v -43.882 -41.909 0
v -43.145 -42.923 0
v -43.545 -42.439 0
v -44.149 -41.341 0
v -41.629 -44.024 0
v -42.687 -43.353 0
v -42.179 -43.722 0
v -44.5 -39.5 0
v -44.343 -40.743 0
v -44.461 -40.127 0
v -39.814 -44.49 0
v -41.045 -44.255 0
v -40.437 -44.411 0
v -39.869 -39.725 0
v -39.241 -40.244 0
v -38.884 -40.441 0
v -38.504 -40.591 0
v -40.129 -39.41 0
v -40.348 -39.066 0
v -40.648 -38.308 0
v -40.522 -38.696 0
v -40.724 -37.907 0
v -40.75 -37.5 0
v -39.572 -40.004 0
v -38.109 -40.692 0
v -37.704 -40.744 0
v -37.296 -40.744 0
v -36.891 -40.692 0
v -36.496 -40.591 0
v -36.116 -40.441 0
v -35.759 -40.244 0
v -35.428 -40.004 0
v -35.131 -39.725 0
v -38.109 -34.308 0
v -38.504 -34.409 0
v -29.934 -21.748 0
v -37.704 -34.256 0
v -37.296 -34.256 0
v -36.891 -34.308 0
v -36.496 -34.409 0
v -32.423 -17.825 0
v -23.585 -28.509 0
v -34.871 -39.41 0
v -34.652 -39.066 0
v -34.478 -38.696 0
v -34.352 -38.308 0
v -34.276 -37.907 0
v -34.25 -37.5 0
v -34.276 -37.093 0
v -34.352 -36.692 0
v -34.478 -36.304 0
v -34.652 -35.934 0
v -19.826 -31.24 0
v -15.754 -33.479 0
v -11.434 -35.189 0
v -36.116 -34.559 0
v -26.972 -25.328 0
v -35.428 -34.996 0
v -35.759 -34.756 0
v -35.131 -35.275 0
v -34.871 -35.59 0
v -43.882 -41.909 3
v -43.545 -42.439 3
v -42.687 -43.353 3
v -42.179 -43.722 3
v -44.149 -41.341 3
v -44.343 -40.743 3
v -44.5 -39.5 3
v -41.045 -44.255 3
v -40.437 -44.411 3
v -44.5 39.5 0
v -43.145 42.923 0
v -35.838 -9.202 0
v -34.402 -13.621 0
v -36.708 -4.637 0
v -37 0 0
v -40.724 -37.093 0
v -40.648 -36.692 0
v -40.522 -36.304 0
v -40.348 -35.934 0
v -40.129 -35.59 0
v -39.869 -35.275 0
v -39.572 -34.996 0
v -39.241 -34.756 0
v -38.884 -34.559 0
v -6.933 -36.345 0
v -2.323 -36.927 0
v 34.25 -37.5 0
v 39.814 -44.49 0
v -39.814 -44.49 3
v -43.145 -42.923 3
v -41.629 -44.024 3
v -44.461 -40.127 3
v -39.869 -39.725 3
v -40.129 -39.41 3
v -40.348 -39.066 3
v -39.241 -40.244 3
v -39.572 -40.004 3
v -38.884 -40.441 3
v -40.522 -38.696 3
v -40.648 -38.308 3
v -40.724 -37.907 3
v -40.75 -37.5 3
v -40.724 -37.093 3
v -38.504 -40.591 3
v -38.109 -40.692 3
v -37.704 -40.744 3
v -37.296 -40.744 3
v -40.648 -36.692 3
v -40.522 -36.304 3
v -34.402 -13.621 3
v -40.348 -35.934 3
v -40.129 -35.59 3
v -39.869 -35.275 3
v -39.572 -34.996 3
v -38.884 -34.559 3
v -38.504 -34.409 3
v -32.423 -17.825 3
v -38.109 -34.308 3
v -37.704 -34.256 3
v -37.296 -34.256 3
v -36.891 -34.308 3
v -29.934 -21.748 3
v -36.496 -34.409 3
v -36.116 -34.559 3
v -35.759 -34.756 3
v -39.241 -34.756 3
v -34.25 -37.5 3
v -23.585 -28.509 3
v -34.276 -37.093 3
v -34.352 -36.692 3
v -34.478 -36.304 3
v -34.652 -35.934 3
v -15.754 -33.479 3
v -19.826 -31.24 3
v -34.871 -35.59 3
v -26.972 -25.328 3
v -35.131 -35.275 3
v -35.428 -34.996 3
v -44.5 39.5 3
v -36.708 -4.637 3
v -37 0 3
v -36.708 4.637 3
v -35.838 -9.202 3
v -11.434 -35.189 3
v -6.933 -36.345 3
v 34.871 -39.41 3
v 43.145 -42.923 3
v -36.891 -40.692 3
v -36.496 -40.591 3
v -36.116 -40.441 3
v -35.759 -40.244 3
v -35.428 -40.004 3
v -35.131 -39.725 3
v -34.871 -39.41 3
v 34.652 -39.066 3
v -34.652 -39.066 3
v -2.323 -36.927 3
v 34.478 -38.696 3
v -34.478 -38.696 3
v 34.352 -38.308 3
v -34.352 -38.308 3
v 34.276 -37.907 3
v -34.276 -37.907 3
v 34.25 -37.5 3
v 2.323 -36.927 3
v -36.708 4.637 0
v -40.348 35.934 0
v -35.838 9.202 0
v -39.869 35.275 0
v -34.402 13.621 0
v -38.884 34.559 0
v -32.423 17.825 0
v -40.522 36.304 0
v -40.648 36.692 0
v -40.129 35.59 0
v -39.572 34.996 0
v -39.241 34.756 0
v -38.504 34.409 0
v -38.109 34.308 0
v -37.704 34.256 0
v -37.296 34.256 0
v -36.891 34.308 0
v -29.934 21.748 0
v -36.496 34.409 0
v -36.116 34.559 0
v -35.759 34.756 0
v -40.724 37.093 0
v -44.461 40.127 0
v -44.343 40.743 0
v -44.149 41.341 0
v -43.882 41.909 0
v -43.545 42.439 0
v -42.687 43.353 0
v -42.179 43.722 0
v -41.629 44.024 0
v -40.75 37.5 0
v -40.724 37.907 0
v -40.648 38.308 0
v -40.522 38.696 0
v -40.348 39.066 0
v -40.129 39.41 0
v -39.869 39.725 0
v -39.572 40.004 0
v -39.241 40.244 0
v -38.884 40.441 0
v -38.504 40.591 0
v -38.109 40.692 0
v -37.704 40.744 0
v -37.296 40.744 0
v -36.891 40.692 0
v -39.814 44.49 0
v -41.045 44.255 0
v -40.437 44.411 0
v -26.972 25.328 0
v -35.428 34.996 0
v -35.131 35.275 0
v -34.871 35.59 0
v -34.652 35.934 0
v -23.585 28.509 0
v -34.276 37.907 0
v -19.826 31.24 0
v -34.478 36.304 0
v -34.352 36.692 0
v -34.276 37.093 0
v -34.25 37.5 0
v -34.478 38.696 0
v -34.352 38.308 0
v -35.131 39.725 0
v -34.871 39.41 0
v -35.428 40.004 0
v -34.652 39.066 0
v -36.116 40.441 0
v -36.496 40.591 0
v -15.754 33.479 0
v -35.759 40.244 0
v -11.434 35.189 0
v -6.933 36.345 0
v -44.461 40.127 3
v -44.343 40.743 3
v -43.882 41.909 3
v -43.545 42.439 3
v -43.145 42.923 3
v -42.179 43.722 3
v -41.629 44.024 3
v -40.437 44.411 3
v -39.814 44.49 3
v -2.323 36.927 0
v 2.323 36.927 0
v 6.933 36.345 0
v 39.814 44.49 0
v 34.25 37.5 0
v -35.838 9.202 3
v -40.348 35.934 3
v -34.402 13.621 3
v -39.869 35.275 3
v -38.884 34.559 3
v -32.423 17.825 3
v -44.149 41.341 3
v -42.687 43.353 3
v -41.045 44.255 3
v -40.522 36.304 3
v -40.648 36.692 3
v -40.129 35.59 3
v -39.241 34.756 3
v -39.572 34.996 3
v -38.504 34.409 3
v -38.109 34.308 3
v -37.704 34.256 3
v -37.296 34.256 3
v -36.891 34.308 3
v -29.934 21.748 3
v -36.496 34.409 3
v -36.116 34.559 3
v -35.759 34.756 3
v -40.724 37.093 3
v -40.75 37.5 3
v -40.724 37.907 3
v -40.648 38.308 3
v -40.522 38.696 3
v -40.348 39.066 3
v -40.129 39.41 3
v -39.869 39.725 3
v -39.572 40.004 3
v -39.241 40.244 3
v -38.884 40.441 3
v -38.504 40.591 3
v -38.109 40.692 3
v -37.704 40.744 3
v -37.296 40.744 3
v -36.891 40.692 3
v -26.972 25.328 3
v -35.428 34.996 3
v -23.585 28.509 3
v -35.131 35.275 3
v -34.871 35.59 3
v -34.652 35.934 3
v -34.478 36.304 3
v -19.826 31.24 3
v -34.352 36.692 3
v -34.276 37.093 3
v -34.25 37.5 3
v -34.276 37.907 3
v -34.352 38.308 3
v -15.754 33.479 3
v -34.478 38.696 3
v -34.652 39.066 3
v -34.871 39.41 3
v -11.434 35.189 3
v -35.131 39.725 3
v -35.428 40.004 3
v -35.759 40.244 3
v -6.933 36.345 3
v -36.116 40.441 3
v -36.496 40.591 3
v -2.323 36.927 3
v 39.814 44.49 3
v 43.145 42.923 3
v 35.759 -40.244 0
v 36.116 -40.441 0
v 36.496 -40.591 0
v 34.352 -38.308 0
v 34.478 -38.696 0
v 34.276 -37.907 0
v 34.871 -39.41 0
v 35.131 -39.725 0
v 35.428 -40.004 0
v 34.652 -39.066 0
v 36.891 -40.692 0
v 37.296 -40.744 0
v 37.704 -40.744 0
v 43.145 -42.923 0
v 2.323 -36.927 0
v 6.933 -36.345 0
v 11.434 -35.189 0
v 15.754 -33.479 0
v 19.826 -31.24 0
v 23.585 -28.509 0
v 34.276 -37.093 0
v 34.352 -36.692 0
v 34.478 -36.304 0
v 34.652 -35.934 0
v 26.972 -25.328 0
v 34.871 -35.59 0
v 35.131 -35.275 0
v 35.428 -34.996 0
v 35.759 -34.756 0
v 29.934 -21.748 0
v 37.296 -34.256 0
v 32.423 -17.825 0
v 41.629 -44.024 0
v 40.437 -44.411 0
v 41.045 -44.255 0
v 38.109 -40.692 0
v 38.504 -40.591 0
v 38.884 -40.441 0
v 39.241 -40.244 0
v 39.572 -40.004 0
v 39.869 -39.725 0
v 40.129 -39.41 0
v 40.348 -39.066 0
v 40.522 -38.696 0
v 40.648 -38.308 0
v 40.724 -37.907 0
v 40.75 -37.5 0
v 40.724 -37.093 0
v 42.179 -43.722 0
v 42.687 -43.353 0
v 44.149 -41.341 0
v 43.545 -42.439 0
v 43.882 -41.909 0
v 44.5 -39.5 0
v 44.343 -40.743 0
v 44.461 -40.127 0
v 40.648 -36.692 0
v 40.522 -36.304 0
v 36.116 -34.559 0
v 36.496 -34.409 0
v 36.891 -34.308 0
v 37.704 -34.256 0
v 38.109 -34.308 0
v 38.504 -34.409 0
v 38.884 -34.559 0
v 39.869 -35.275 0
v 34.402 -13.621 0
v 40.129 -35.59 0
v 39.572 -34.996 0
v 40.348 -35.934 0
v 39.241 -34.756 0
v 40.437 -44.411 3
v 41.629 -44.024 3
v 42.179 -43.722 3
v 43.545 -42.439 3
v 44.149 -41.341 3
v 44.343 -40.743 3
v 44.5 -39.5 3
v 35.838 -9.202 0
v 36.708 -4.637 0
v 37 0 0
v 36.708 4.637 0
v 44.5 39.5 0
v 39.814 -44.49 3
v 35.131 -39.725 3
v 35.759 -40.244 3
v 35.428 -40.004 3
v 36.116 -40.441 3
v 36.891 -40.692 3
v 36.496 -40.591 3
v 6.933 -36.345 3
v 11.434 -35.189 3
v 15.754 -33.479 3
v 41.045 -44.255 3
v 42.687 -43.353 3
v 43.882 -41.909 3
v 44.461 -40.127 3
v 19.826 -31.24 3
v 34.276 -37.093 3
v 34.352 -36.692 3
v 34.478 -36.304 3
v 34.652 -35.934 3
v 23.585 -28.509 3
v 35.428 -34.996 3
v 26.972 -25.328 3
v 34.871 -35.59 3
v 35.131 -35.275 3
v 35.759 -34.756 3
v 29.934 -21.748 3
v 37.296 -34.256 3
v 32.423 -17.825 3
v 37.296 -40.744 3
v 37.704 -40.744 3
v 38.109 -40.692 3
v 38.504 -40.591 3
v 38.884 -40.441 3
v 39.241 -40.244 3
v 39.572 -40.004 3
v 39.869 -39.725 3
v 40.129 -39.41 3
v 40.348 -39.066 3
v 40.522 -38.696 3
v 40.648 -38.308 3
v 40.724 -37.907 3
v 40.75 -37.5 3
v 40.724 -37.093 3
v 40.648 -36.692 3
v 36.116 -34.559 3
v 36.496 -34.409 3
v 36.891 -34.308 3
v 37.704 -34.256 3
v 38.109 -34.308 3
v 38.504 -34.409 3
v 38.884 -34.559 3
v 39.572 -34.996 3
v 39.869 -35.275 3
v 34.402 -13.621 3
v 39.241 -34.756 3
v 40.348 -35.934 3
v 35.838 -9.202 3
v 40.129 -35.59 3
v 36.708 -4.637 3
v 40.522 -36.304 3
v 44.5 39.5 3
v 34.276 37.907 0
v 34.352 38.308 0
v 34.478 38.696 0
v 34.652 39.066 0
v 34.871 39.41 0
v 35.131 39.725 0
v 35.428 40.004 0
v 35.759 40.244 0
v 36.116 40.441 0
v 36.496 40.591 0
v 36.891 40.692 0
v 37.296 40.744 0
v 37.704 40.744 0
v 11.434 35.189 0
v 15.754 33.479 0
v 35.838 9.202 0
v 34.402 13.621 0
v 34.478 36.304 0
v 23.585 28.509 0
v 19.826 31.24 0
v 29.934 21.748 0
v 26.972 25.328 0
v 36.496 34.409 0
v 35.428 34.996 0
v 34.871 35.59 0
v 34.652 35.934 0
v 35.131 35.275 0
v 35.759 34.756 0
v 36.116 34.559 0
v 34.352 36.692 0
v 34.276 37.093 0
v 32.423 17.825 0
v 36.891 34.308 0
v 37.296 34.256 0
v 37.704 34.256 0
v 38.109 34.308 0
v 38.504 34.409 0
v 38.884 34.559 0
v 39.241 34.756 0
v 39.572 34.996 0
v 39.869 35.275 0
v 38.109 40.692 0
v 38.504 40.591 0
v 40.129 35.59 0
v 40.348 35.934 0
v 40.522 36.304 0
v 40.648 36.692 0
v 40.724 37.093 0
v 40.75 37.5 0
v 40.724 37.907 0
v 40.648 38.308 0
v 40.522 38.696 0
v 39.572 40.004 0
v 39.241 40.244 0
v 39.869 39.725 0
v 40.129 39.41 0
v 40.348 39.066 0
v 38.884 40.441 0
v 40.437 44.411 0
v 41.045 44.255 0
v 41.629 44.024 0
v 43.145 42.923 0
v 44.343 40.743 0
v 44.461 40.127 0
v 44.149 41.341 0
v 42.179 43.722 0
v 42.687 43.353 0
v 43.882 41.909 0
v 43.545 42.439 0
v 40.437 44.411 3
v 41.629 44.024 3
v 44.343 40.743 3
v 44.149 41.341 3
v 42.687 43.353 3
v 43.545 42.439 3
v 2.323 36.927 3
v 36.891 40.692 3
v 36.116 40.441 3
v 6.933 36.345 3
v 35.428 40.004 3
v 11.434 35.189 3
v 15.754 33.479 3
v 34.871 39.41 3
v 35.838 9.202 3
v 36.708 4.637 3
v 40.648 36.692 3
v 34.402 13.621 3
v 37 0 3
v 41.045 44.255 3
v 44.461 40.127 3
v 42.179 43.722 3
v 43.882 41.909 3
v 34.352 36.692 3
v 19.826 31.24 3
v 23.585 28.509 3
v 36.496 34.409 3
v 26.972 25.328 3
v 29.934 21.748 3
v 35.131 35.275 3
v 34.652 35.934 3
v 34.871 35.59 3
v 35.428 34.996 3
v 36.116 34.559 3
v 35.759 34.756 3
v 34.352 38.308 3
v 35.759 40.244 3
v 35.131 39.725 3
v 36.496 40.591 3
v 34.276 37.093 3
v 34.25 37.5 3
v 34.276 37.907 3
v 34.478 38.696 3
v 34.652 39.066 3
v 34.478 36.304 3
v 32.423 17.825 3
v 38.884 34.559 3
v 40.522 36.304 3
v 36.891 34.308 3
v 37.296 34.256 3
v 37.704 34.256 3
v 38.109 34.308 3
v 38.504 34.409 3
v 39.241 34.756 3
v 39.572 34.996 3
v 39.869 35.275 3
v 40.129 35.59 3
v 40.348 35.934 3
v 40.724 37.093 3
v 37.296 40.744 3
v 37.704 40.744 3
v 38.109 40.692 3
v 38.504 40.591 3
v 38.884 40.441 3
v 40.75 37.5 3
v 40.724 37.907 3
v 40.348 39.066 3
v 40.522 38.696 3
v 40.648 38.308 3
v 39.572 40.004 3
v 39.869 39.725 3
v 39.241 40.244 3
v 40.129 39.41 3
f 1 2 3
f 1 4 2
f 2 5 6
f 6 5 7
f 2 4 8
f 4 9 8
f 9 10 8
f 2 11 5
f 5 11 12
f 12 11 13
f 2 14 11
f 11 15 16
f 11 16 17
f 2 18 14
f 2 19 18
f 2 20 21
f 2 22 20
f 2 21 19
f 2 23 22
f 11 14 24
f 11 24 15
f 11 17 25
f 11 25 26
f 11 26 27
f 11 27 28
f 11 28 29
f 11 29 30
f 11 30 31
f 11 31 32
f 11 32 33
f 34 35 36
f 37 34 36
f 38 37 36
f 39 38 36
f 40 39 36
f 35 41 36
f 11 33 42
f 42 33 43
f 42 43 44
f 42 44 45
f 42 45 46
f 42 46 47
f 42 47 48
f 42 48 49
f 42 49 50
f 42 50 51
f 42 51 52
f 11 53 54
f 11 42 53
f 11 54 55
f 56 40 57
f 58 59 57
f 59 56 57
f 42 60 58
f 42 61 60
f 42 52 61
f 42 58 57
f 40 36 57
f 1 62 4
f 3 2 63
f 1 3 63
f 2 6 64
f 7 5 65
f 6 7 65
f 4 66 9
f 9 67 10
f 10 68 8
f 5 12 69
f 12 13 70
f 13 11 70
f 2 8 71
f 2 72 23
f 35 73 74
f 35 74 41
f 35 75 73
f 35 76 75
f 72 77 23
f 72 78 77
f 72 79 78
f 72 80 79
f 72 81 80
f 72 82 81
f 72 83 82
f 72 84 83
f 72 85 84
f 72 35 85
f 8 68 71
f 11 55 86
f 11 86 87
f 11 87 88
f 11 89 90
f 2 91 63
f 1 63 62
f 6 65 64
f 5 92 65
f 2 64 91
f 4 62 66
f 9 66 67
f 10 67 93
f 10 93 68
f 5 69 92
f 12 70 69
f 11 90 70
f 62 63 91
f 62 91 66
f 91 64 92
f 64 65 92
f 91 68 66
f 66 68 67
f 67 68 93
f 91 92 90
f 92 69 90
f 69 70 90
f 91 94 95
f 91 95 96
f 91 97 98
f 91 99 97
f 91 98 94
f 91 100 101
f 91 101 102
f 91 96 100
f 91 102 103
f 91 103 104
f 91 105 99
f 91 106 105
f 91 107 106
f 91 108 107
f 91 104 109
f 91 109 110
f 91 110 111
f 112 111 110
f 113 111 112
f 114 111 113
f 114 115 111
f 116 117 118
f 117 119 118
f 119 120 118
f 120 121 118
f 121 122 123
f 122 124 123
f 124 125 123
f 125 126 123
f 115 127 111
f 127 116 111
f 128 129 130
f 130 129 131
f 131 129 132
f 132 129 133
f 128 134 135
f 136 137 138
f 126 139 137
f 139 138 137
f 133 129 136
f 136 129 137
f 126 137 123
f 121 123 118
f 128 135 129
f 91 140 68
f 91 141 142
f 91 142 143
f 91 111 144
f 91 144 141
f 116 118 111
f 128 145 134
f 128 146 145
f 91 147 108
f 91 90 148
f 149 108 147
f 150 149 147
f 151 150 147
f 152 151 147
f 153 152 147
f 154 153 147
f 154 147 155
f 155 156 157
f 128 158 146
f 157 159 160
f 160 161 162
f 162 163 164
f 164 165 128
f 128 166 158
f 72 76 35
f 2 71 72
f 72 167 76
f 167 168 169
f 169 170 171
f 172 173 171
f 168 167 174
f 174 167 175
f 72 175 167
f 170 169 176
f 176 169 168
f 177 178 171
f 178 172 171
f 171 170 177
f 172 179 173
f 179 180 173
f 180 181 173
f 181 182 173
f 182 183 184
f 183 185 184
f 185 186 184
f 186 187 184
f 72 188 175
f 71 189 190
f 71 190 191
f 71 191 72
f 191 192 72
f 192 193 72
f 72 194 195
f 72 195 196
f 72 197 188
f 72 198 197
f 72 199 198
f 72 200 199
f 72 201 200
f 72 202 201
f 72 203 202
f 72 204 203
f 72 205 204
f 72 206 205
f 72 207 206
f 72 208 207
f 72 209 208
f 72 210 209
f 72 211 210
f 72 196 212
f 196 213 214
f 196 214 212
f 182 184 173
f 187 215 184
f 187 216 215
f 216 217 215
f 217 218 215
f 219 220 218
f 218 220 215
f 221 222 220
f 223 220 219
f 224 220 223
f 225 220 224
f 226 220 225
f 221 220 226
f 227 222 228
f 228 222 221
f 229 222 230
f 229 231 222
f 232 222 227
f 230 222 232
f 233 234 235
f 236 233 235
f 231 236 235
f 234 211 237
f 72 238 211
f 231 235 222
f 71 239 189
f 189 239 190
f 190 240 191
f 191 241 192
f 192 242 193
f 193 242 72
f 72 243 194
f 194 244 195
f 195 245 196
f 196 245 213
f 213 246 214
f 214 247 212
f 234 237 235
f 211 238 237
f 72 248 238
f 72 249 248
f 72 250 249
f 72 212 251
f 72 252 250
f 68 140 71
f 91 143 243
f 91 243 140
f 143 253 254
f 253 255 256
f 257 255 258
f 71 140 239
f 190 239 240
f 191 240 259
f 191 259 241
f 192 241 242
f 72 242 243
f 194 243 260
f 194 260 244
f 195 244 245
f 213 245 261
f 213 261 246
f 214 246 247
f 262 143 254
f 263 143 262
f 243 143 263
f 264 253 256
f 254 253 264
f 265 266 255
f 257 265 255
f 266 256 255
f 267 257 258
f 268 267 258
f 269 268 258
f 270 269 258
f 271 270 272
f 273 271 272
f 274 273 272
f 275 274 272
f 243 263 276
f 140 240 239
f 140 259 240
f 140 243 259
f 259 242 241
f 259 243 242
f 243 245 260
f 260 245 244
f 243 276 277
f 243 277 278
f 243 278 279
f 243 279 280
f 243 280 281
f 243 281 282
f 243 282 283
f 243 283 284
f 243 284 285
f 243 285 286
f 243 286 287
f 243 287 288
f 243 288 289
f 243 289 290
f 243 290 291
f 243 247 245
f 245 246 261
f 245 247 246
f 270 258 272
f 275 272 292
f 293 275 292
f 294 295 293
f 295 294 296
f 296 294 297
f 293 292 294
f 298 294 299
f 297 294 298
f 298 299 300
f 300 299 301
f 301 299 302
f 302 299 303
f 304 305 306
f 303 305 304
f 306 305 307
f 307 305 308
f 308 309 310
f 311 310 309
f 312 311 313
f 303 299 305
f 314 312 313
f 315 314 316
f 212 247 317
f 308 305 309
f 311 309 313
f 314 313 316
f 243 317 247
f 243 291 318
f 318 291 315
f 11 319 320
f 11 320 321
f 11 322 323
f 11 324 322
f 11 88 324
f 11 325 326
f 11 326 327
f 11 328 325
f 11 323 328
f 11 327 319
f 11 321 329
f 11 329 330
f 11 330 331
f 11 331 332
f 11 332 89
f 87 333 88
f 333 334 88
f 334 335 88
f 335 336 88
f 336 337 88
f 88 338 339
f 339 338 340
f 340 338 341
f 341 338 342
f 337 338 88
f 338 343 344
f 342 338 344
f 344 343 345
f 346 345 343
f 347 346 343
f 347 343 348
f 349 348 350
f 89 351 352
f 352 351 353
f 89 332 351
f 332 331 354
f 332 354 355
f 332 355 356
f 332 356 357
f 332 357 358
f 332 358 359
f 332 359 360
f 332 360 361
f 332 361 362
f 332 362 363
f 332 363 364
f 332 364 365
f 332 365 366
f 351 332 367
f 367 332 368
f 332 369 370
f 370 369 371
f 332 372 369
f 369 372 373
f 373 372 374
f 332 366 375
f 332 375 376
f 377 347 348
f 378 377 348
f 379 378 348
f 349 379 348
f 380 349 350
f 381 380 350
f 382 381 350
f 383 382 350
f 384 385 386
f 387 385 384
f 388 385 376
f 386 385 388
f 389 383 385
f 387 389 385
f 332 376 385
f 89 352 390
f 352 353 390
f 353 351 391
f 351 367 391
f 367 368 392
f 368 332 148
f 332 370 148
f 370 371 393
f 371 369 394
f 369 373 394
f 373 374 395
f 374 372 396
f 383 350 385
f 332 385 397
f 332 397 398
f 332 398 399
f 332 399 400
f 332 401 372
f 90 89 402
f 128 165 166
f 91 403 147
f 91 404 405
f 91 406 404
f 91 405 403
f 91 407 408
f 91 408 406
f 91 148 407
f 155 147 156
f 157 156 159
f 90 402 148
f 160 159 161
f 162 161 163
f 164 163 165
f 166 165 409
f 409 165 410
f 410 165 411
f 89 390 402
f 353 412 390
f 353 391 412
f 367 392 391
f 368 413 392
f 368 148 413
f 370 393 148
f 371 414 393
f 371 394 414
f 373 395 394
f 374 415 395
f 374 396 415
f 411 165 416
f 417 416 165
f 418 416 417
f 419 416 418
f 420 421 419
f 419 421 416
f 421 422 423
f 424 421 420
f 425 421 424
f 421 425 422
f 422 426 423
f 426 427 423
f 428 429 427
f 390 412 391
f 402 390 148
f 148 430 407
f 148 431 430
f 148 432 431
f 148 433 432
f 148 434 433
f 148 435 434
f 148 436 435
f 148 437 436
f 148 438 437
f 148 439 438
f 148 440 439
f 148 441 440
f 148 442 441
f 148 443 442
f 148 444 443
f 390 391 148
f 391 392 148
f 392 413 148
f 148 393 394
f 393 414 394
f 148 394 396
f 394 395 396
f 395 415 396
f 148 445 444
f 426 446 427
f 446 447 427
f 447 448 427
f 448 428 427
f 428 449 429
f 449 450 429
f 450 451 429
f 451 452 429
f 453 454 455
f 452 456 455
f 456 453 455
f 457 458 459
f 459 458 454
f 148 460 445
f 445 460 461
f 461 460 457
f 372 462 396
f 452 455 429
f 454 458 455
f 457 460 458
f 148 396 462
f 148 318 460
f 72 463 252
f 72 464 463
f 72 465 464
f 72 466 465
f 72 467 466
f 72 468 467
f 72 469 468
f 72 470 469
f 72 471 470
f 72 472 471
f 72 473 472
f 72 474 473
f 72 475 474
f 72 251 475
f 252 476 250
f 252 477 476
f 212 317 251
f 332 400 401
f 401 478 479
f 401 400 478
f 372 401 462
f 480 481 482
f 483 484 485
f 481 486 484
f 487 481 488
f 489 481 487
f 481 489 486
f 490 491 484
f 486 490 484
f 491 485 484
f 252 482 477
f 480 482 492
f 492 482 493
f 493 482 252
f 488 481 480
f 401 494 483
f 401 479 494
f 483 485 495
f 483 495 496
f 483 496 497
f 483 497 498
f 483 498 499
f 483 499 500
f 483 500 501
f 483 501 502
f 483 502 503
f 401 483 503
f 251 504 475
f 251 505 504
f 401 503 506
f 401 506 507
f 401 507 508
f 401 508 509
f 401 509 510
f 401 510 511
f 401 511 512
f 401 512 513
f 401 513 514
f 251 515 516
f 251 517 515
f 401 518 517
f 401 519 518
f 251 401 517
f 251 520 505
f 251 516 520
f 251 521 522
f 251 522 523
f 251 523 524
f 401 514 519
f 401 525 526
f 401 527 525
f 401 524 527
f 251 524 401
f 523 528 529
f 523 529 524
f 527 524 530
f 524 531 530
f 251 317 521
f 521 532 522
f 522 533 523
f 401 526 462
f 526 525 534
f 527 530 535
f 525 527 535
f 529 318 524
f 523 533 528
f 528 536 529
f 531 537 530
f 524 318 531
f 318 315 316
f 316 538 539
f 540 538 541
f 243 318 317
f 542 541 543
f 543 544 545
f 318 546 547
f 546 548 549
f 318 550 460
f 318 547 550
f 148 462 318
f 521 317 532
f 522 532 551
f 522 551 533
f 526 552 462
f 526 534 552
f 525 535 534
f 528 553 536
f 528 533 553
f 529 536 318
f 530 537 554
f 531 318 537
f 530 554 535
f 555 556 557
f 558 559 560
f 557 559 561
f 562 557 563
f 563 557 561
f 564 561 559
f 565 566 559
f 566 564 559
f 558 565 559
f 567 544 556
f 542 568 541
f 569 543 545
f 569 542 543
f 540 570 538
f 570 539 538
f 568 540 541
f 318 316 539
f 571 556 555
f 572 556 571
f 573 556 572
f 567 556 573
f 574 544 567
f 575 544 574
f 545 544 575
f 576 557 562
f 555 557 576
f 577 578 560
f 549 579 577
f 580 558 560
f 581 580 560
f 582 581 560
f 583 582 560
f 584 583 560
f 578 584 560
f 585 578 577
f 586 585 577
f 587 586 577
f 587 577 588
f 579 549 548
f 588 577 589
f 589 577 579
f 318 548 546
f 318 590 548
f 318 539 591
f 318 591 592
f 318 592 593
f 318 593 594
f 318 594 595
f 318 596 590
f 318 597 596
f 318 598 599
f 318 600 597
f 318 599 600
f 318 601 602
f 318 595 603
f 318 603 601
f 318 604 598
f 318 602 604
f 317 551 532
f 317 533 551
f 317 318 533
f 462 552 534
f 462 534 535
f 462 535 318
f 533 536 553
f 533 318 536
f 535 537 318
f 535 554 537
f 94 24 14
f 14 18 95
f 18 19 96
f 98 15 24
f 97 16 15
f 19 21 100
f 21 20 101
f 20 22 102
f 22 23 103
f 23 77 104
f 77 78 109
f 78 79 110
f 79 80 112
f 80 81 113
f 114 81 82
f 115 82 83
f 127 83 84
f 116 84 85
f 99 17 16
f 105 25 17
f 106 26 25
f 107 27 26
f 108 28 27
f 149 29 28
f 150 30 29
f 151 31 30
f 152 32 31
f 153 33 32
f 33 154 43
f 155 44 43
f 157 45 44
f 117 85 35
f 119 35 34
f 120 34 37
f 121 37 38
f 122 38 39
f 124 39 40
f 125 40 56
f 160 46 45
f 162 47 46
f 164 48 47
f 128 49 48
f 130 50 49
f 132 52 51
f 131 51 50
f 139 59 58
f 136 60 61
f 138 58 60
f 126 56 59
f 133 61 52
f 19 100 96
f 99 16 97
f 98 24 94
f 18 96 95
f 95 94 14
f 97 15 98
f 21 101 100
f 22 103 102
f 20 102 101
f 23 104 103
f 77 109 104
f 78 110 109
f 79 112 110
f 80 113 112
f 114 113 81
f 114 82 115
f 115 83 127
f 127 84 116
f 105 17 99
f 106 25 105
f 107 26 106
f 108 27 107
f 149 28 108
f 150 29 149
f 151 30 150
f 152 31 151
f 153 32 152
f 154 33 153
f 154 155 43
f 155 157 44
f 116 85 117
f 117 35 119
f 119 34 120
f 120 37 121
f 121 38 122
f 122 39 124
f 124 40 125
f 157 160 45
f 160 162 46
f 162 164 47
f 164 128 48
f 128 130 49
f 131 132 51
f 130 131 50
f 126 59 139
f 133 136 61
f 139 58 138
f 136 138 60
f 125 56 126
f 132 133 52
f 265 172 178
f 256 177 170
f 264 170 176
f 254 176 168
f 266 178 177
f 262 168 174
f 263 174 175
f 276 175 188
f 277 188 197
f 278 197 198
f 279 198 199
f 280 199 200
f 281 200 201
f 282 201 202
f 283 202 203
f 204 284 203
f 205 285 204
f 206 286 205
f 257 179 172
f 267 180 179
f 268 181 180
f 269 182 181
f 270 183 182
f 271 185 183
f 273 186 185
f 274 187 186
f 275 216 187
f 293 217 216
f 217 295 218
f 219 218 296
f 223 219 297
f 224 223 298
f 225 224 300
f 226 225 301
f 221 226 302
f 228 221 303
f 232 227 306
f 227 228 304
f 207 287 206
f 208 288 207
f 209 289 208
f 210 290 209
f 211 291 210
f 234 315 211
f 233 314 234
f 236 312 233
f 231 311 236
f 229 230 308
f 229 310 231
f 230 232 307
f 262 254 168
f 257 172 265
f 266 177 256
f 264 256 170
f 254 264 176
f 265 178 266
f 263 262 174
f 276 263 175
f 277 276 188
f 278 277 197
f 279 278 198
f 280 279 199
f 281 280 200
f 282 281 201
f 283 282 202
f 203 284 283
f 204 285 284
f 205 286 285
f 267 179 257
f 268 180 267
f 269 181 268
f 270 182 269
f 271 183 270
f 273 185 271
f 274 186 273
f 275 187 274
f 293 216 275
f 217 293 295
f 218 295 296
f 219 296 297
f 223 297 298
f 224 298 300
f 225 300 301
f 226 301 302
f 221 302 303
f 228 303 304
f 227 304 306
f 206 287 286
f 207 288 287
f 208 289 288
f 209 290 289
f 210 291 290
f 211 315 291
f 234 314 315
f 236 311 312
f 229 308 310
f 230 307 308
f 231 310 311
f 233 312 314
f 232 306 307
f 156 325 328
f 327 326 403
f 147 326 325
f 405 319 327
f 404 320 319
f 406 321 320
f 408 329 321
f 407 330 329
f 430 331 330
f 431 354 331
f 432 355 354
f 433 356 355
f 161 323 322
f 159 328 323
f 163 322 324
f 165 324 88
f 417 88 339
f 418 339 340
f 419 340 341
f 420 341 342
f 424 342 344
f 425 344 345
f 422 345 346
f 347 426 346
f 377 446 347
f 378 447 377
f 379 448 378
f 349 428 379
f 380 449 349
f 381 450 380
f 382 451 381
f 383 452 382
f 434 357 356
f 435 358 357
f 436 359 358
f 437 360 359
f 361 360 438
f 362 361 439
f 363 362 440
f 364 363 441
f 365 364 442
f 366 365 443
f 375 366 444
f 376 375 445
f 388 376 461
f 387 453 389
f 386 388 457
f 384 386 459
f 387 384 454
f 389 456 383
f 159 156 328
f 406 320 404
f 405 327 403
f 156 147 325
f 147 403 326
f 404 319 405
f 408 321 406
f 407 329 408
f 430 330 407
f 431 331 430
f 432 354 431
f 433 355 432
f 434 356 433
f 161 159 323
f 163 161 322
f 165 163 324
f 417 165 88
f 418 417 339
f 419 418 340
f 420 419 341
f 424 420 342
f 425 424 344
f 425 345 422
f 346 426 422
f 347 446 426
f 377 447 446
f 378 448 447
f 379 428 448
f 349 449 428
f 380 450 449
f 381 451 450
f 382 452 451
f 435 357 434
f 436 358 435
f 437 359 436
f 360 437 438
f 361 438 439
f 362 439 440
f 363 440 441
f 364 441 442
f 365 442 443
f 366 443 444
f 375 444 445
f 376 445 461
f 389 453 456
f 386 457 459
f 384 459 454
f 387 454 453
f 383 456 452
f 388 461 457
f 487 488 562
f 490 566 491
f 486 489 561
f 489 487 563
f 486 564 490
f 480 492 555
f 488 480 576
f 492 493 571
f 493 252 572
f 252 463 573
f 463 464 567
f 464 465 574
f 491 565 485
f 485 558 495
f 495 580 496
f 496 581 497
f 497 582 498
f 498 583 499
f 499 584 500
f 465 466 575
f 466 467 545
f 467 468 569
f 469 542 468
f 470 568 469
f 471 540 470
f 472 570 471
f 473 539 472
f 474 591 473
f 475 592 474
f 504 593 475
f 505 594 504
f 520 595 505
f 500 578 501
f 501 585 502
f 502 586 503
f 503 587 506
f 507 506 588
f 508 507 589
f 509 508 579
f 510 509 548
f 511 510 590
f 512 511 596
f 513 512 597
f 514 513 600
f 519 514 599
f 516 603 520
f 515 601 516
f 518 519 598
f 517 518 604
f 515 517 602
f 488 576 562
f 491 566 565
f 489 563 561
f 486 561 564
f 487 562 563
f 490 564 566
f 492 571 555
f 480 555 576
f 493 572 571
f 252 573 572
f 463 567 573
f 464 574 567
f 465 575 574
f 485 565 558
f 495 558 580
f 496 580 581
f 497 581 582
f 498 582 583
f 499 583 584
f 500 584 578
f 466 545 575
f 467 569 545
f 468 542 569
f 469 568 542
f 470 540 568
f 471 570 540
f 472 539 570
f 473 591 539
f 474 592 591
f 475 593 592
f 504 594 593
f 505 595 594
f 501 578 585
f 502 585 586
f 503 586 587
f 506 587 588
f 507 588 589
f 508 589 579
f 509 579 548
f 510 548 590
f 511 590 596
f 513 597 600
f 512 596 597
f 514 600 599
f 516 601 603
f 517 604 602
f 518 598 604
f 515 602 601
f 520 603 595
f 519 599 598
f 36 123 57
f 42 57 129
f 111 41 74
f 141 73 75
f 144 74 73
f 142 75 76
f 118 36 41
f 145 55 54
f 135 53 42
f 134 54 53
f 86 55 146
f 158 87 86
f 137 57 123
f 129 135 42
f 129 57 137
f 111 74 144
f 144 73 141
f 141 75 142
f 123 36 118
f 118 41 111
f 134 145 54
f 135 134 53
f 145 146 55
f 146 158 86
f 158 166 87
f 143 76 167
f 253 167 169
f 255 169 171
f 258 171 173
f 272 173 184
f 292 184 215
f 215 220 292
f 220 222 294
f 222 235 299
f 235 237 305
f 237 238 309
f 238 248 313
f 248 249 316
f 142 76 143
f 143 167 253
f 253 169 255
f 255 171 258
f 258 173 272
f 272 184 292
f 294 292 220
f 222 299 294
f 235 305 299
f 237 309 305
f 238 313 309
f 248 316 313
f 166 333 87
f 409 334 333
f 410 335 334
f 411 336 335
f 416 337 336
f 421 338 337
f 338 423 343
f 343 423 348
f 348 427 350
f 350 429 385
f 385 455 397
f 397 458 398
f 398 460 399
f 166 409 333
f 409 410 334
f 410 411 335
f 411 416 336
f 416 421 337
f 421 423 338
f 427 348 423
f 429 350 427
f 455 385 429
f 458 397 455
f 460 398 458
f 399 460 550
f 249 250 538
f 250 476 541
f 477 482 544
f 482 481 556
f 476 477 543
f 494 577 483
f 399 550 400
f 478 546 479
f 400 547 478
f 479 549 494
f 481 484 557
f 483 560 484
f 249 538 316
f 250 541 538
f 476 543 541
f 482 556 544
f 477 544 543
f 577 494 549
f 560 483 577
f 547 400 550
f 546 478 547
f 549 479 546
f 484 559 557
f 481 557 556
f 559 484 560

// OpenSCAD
$fn = 50;

difference() {
	union() {
		hull() {
			translate(v = [-39.5, 39.5, 0]) {
				cylinder(h = 3, r = 5);
			}
			translate(v = [39.5, 39.5, 0]) {
				cylinder(h = 3, r = 5);
			}
			translate(v = [-39.5, -39.5, 0]) {
				cylinder(h = 3, r = 5);
			}
			translate(v = [39.5, -39.5, 0]) {
				cylinder(h = 3, r = 5);
			}
		}
	}
	union() {
		translate(v = [-37.5, -37.5, -100.0]) {
			cylinder(h = 200, r = 3.25);
		}
		translate(v = [-37.5, 37.5, -100.0]) {
			cylinder(h = 200, r = 3.25);
		}
		translate(v = [37.5, -37.5, -100.0]) {
			cylinder(h = 200, r = 3.25);
		}
		translate(v = [37.5, 37.5, -100.0]) {
			cylinder(h = 200, r = 3.25);
		}
		translate(v = [-37.5, -37.5, -100.0]) {
			cylinder(h = 200, r = 1.8);
		}
		translate(v = [-37.5, 37.5, -100.0]) {
			cylinder(h = 200, r = 1.8);
		}
		translate(v = [37.5, -37.5, -100.0]) {
			cylinder(h = 200, r = 1.8);
		}
		translate(v = [37.5, 37.5, -100.0]) {
			cylinder(h = 200, r = 1.8);
		}
		cylinder(h = 3, r = 37.0);
	}
}
